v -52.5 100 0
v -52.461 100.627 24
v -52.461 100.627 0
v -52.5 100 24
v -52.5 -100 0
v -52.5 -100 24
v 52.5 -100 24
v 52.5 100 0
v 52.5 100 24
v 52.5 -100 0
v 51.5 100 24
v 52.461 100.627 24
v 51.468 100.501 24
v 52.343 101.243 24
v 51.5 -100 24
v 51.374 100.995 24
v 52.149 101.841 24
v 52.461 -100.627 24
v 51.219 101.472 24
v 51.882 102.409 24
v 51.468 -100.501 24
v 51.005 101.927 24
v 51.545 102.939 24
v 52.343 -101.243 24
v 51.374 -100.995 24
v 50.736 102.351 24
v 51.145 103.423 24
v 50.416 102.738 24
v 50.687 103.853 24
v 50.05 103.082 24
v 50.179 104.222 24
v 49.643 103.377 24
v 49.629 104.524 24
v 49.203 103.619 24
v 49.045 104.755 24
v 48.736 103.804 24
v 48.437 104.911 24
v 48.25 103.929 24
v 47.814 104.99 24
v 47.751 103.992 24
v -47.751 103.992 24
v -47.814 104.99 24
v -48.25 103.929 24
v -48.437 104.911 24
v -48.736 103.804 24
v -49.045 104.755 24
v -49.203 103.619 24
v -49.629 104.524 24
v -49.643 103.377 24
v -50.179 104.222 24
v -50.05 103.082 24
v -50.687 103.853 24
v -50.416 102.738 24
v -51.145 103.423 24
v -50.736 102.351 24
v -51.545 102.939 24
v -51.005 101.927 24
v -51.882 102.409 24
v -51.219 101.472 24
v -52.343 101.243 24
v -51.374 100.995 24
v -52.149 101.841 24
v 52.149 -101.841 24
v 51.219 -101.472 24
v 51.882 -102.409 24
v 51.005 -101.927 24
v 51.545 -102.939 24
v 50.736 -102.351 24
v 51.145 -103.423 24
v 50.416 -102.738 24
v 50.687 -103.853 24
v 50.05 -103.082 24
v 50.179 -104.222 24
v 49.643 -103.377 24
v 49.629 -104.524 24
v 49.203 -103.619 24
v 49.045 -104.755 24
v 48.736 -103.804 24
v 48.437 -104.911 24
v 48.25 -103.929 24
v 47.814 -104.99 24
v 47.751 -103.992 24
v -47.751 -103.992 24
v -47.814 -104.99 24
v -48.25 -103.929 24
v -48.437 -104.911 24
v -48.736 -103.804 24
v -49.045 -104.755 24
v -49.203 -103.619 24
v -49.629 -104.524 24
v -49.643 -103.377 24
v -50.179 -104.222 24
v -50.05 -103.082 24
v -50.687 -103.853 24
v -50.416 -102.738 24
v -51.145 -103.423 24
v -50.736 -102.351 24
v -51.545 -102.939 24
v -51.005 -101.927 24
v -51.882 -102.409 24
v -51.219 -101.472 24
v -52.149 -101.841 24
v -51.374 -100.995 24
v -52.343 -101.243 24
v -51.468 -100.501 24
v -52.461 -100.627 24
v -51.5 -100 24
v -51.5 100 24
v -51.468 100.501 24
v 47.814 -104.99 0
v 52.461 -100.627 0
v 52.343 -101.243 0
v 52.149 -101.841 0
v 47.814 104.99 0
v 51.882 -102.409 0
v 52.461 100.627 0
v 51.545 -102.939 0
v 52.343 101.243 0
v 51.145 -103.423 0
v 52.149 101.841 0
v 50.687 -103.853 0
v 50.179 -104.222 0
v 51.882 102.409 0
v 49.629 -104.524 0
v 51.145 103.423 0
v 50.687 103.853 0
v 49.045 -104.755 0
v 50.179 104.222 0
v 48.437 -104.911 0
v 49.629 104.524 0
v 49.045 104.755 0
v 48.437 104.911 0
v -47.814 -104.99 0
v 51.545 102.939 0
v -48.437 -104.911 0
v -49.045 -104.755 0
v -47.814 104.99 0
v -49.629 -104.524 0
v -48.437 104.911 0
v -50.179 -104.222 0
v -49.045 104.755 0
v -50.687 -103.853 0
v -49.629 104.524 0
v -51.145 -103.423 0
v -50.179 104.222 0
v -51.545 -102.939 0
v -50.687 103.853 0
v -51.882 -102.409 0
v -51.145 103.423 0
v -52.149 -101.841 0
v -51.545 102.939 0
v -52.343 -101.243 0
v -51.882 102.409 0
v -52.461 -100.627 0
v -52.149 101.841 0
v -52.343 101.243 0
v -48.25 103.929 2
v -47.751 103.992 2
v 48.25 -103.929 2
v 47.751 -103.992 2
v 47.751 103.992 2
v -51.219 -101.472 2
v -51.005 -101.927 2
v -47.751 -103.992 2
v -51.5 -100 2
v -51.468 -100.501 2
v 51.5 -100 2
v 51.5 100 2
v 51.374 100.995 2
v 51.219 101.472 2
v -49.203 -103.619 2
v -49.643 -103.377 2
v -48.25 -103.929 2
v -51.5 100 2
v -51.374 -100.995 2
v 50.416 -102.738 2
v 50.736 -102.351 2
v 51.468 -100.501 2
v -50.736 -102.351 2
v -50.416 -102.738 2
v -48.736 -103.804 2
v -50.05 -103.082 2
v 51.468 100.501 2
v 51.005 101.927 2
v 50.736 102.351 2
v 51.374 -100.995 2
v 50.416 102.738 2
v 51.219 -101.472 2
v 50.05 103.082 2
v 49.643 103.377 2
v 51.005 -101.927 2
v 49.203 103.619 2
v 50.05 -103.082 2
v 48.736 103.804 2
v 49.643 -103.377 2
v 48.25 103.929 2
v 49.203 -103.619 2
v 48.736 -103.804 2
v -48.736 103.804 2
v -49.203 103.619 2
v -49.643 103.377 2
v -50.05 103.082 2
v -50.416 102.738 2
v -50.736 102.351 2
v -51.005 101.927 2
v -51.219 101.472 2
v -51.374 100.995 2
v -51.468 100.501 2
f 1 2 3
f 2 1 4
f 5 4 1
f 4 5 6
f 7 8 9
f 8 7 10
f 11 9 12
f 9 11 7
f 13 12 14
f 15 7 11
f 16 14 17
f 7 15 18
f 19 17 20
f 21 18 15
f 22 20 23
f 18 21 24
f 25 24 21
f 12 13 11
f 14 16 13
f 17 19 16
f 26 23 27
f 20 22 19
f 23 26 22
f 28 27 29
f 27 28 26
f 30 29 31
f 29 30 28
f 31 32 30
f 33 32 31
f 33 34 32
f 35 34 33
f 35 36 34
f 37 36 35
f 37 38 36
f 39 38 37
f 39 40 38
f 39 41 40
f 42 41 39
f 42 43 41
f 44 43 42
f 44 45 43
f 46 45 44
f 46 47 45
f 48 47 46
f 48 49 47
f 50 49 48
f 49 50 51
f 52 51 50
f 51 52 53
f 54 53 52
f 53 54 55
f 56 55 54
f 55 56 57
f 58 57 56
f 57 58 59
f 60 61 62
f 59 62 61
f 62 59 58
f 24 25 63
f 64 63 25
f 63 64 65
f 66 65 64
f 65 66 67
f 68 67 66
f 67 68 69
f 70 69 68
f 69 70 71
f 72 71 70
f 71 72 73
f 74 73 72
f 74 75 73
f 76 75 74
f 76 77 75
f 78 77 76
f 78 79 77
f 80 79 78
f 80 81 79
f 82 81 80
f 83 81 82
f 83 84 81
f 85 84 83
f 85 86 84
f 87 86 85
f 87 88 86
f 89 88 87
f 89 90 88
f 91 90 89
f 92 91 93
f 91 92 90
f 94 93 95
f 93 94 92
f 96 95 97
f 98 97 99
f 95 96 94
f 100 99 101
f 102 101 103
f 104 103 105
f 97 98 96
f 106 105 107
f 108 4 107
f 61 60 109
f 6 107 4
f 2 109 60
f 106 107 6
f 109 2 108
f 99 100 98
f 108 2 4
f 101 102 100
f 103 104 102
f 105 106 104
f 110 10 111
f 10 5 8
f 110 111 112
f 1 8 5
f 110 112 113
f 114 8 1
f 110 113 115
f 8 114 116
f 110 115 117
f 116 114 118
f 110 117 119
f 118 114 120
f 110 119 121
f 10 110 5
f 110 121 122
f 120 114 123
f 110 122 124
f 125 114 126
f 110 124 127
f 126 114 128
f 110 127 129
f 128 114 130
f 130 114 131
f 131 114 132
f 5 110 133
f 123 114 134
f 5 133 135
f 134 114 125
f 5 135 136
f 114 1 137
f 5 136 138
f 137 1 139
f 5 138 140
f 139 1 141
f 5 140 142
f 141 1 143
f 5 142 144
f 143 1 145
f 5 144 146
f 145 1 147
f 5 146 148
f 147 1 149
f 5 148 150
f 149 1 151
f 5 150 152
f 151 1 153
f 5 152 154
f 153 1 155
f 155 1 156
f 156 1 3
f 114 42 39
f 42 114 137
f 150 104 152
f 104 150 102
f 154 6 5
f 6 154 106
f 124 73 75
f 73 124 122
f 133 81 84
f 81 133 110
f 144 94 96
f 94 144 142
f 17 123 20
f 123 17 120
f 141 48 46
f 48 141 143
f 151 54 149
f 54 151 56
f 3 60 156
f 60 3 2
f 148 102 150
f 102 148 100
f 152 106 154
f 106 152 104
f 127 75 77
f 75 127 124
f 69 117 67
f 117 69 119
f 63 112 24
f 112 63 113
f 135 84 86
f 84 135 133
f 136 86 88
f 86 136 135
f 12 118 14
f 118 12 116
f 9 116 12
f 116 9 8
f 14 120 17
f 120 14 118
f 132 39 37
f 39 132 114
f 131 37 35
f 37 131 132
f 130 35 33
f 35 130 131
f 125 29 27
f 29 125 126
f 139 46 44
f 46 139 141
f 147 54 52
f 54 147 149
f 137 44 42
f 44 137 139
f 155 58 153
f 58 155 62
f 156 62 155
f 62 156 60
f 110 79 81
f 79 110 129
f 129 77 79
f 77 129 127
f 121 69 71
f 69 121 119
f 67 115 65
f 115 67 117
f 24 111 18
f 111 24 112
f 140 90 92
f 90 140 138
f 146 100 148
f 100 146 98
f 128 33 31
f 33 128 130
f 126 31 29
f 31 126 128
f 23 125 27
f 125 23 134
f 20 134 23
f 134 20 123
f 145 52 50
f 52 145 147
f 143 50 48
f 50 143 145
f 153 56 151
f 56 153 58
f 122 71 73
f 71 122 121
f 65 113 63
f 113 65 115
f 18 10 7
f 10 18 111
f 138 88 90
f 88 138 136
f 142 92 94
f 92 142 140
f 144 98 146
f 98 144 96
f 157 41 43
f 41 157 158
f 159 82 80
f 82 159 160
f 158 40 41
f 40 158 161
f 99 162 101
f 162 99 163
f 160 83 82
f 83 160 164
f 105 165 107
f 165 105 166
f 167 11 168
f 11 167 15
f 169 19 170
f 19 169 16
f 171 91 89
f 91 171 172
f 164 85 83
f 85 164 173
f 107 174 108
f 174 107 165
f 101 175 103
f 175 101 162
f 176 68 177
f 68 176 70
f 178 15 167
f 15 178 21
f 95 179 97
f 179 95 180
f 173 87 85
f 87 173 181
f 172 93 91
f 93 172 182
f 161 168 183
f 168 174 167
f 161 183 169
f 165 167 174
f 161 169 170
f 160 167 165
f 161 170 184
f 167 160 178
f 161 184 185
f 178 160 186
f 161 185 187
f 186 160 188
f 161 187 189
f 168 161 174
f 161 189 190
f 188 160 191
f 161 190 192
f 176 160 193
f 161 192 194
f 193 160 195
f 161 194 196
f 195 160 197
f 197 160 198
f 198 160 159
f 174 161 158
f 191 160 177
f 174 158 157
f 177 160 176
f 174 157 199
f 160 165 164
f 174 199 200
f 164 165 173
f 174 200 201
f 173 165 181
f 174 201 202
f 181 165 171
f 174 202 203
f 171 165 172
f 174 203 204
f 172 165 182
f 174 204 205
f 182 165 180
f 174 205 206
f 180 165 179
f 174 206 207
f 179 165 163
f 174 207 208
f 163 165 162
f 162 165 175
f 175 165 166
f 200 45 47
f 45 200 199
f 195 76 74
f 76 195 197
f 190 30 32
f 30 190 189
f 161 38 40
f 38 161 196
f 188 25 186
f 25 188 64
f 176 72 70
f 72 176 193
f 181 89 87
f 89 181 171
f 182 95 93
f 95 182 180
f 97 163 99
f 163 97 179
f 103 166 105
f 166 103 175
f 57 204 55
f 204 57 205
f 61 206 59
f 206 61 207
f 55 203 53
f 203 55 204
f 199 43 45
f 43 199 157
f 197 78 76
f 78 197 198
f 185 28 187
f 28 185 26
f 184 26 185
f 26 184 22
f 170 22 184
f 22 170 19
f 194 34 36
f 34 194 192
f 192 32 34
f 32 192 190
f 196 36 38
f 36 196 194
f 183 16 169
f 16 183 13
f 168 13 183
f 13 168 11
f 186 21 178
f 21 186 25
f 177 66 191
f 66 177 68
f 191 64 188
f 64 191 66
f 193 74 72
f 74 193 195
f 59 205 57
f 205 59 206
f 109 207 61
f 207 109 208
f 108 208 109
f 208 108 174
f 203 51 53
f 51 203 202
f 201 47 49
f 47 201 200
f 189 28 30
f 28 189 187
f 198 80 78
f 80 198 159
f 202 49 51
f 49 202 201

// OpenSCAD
$fn = 50;


difference() {
	union() {
		hull() {
			translate(v = [-47.5000000000, 100.0000000000, 0]) {
				cylinder(h = 24, r = 5);
			}
			translate(v = [47.5000000000, 100.0000000000, 0]) {
				cylinder(h = 24, r = 5);
			}
			translate(v = [-47.5000000000, -100.0000000000, 0]) {
				cylinder(h = 24, r = 5);
			}
			translate(v = [47.5000000000, -100.0000000000, 0]) {
				cylinder(h = 24, r = 5);
			}
		}
	}
	union() {
		translate(v = [0, 0, 2]) {
			hull() {
				translate(v = [-47.5000000000, 100.0000000000, 0]) {
					cylinder(h = 22, r = 4);
				}
				translate(v = [47.5000000000, 100.0000000000, 0]) {
					cylinder(h = 22, r = 4);
				}
				translate(v = [-47.5000000000, -100.0000000000, 0]) {
					cylinder(h = 22, r = 4);
				}
				translate(v = [47.5000000000, -100.0000000000, 0]) {
					cylinder(h = 22, r = 4);
				}
			}
		}
	}
}
